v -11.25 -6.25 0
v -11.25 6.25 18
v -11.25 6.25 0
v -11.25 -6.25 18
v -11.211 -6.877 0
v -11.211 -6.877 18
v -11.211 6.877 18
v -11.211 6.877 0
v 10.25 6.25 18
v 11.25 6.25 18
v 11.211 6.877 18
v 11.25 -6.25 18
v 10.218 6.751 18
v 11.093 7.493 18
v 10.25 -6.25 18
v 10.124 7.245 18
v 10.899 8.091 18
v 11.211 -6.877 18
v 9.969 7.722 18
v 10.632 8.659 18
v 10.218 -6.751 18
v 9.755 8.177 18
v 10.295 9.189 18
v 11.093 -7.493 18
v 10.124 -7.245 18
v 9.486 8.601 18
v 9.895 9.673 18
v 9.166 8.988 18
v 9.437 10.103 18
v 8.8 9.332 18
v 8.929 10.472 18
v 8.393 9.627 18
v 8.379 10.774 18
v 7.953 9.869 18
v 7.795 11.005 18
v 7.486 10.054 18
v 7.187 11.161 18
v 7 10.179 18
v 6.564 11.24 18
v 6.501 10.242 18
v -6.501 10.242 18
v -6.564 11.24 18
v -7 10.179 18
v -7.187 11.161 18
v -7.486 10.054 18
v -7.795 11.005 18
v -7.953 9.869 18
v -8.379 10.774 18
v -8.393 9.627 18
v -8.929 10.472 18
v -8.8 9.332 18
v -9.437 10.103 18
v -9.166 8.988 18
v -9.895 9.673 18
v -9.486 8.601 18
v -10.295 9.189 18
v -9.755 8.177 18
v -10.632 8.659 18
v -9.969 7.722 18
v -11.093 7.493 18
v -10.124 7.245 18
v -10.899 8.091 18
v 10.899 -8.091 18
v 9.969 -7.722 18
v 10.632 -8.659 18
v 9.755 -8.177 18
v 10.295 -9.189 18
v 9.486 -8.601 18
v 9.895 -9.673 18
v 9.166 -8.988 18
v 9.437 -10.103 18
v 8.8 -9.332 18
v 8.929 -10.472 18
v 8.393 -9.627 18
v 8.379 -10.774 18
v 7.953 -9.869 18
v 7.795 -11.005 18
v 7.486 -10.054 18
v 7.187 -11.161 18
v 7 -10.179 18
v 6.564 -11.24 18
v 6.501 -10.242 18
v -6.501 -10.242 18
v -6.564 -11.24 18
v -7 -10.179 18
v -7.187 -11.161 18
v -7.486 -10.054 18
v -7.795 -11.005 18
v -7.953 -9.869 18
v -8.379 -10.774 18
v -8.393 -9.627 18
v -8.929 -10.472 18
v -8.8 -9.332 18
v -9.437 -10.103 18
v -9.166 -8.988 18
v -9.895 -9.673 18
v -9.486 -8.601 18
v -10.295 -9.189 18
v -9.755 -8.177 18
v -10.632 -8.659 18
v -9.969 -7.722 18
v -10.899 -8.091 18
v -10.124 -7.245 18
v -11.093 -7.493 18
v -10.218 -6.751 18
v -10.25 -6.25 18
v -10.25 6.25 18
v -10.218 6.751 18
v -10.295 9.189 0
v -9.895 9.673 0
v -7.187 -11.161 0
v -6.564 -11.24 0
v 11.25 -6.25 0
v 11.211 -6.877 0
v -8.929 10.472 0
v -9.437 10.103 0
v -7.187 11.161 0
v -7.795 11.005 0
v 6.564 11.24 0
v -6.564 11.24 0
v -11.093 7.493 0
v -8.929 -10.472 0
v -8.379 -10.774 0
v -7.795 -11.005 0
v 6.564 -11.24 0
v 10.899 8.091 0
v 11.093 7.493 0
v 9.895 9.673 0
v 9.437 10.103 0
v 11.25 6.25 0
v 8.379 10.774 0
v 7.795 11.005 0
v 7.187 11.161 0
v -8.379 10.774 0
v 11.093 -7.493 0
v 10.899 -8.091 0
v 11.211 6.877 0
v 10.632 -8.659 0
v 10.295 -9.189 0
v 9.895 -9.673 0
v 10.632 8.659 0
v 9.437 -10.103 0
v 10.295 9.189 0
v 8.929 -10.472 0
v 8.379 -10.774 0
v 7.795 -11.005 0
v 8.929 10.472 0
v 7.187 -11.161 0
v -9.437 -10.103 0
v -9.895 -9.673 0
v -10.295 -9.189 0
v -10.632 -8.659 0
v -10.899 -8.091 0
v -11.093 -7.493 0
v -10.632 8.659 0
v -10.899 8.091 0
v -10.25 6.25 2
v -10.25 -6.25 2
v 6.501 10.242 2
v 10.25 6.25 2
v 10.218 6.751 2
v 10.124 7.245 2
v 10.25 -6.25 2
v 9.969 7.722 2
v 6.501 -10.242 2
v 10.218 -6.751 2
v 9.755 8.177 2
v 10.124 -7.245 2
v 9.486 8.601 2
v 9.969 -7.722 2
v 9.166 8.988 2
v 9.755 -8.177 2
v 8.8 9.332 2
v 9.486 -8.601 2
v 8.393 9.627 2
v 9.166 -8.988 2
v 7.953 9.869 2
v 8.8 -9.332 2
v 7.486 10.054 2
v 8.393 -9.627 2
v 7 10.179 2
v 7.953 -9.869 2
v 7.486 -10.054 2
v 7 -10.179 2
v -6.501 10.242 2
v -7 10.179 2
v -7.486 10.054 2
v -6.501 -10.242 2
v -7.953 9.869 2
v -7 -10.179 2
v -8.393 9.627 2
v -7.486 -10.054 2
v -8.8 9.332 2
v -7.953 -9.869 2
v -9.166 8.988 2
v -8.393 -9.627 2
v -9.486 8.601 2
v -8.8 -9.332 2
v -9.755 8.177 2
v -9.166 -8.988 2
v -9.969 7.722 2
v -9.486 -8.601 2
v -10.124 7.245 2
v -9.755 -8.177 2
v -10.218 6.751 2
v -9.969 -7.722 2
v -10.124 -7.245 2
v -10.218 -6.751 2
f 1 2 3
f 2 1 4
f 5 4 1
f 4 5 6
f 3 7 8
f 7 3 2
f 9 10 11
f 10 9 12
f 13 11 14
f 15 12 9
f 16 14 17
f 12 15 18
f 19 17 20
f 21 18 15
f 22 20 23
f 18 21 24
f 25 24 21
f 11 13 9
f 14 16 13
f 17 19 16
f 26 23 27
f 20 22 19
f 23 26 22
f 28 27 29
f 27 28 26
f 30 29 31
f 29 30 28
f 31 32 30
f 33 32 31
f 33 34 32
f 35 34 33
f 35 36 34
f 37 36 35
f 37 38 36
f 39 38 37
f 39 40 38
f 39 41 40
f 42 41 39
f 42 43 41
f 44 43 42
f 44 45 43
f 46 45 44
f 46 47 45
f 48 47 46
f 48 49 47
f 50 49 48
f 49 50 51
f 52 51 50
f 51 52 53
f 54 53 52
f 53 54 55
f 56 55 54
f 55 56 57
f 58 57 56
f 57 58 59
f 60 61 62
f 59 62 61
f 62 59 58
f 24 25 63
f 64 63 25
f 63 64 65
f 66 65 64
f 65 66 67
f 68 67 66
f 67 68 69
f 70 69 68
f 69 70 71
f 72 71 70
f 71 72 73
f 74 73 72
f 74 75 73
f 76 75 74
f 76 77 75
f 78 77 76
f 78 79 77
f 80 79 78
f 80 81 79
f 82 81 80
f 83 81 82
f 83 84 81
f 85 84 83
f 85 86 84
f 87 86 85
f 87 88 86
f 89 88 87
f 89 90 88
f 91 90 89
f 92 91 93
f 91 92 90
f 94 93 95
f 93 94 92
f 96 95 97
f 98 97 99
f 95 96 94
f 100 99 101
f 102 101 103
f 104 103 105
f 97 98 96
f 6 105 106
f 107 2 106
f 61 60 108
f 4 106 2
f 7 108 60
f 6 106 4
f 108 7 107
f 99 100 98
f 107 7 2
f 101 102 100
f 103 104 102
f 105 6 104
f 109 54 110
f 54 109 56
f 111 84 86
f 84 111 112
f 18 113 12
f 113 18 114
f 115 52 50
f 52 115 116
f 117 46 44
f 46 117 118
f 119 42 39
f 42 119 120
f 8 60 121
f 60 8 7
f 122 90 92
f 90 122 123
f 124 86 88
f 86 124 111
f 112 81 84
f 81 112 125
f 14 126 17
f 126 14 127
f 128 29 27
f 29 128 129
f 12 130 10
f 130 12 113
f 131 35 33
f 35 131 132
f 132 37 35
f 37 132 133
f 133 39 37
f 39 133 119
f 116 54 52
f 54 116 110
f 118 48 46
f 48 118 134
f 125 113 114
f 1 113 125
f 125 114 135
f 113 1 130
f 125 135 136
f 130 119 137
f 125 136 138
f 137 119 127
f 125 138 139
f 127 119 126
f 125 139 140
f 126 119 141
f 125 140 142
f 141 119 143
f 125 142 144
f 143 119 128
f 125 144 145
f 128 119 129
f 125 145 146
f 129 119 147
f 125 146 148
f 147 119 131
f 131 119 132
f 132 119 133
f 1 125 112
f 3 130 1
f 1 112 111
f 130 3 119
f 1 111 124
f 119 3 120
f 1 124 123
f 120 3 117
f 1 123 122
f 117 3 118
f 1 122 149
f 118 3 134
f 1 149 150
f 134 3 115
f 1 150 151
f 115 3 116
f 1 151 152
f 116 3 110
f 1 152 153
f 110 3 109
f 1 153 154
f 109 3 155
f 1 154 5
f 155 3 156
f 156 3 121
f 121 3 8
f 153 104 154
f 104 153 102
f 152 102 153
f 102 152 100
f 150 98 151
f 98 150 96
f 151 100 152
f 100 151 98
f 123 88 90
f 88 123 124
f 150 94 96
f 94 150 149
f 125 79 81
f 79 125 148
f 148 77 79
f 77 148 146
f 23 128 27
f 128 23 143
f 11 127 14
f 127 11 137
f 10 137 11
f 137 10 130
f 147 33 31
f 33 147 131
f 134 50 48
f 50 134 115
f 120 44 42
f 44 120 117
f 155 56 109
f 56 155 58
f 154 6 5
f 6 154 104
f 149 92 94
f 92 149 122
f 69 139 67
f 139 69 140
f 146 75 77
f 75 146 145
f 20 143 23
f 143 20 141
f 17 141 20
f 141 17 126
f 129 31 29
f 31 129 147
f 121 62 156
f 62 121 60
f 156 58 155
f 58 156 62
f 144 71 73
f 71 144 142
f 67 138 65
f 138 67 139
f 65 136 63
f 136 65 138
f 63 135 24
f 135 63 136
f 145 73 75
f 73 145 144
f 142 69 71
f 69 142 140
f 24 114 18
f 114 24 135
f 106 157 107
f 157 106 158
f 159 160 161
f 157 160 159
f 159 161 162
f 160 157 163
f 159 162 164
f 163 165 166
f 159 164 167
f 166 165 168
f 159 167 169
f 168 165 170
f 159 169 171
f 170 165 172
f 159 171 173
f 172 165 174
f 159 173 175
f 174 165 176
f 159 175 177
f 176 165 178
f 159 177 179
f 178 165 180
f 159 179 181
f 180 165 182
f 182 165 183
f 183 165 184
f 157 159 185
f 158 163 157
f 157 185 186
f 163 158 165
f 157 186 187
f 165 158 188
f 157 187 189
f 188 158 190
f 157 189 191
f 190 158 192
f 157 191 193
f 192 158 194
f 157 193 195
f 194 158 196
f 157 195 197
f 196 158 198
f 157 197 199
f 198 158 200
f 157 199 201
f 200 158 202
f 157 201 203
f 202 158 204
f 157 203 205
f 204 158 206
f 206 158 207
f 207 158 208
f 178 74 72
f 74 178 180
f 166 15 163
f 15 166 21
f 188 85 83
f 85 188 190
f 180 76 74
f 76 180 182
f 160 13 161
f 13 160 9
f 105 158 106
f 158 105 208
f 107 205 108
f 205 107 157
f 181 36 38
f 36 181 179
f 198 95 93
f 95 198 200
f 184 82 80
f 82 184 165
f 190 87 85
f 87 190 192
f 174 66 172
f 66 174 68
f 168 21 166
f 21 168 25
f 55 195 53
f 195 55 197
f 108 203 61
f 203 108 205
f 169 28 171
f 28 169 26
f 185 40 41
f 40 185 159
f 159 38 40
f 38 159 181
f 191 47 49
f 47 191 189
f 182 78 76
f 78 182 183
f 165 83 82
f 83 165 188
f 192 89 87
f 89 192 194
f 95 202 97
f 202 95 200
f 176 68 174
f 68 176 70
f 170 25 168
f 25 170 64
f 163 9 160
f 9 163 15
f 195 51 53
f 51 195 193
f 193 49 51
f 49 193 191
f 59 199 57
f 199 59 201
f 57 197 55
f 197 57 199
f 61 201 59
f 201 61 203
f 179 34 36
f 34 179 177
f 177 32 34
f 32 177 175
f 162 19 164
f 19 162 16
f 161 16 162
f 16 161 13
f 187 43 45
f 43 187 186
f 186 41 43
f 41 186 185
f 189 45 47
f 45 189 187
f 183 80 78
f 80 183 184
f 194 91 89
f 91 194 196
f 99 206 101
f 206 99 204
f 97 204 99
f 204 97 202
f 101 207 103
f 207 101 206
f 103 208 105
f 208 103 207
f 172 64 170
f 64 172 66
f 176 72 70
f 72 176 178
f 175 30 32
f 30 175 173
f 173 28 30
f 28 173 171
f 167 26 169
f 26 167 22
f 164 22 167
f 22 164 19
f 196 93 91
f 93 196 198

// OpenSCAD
$fn = 50;


difference() {
	union() {
		hull() {
			translate(v = [-6.2500000000, 6.2500000000, 0]) {
				cylinder(h = 18, r = 5);
			}
			translate(v = [6.2500000000, 6.2500000000, 0]) {
				cylinder(h = 18, r = 5);
			}
			translate(v = [-6.2500000000, -6.2500000000, 0]) {
				cylinder(h = 18, r = 5);
			}
			translate(v = [6.2500000000, -6.2500000000, 0]) {
				cylinder(h = 18, r = 5);
			}
		}
	}
	union() {
		translate(v = [0, 0, 2]) {
			hull() {
				translate(v = [-6.2500000000, 6.2500000000, 0]) {
					cylinder(h = 16, r = 4);
				}
				translate(v = [6.2500000000, 6.2500000000, 0]) {
					cylinder(h = 16, r = 4);
				}
				translate(v = [-6.2500000000, -6.2500000000, 0]) {
					cylinder(h = 16, r = 4);
				}
				translate(v = [6.2500000000, -6.2500000000, 0]) {
					cylinder(h = 16, r = 4);
				}
			}
		}
	}
}
